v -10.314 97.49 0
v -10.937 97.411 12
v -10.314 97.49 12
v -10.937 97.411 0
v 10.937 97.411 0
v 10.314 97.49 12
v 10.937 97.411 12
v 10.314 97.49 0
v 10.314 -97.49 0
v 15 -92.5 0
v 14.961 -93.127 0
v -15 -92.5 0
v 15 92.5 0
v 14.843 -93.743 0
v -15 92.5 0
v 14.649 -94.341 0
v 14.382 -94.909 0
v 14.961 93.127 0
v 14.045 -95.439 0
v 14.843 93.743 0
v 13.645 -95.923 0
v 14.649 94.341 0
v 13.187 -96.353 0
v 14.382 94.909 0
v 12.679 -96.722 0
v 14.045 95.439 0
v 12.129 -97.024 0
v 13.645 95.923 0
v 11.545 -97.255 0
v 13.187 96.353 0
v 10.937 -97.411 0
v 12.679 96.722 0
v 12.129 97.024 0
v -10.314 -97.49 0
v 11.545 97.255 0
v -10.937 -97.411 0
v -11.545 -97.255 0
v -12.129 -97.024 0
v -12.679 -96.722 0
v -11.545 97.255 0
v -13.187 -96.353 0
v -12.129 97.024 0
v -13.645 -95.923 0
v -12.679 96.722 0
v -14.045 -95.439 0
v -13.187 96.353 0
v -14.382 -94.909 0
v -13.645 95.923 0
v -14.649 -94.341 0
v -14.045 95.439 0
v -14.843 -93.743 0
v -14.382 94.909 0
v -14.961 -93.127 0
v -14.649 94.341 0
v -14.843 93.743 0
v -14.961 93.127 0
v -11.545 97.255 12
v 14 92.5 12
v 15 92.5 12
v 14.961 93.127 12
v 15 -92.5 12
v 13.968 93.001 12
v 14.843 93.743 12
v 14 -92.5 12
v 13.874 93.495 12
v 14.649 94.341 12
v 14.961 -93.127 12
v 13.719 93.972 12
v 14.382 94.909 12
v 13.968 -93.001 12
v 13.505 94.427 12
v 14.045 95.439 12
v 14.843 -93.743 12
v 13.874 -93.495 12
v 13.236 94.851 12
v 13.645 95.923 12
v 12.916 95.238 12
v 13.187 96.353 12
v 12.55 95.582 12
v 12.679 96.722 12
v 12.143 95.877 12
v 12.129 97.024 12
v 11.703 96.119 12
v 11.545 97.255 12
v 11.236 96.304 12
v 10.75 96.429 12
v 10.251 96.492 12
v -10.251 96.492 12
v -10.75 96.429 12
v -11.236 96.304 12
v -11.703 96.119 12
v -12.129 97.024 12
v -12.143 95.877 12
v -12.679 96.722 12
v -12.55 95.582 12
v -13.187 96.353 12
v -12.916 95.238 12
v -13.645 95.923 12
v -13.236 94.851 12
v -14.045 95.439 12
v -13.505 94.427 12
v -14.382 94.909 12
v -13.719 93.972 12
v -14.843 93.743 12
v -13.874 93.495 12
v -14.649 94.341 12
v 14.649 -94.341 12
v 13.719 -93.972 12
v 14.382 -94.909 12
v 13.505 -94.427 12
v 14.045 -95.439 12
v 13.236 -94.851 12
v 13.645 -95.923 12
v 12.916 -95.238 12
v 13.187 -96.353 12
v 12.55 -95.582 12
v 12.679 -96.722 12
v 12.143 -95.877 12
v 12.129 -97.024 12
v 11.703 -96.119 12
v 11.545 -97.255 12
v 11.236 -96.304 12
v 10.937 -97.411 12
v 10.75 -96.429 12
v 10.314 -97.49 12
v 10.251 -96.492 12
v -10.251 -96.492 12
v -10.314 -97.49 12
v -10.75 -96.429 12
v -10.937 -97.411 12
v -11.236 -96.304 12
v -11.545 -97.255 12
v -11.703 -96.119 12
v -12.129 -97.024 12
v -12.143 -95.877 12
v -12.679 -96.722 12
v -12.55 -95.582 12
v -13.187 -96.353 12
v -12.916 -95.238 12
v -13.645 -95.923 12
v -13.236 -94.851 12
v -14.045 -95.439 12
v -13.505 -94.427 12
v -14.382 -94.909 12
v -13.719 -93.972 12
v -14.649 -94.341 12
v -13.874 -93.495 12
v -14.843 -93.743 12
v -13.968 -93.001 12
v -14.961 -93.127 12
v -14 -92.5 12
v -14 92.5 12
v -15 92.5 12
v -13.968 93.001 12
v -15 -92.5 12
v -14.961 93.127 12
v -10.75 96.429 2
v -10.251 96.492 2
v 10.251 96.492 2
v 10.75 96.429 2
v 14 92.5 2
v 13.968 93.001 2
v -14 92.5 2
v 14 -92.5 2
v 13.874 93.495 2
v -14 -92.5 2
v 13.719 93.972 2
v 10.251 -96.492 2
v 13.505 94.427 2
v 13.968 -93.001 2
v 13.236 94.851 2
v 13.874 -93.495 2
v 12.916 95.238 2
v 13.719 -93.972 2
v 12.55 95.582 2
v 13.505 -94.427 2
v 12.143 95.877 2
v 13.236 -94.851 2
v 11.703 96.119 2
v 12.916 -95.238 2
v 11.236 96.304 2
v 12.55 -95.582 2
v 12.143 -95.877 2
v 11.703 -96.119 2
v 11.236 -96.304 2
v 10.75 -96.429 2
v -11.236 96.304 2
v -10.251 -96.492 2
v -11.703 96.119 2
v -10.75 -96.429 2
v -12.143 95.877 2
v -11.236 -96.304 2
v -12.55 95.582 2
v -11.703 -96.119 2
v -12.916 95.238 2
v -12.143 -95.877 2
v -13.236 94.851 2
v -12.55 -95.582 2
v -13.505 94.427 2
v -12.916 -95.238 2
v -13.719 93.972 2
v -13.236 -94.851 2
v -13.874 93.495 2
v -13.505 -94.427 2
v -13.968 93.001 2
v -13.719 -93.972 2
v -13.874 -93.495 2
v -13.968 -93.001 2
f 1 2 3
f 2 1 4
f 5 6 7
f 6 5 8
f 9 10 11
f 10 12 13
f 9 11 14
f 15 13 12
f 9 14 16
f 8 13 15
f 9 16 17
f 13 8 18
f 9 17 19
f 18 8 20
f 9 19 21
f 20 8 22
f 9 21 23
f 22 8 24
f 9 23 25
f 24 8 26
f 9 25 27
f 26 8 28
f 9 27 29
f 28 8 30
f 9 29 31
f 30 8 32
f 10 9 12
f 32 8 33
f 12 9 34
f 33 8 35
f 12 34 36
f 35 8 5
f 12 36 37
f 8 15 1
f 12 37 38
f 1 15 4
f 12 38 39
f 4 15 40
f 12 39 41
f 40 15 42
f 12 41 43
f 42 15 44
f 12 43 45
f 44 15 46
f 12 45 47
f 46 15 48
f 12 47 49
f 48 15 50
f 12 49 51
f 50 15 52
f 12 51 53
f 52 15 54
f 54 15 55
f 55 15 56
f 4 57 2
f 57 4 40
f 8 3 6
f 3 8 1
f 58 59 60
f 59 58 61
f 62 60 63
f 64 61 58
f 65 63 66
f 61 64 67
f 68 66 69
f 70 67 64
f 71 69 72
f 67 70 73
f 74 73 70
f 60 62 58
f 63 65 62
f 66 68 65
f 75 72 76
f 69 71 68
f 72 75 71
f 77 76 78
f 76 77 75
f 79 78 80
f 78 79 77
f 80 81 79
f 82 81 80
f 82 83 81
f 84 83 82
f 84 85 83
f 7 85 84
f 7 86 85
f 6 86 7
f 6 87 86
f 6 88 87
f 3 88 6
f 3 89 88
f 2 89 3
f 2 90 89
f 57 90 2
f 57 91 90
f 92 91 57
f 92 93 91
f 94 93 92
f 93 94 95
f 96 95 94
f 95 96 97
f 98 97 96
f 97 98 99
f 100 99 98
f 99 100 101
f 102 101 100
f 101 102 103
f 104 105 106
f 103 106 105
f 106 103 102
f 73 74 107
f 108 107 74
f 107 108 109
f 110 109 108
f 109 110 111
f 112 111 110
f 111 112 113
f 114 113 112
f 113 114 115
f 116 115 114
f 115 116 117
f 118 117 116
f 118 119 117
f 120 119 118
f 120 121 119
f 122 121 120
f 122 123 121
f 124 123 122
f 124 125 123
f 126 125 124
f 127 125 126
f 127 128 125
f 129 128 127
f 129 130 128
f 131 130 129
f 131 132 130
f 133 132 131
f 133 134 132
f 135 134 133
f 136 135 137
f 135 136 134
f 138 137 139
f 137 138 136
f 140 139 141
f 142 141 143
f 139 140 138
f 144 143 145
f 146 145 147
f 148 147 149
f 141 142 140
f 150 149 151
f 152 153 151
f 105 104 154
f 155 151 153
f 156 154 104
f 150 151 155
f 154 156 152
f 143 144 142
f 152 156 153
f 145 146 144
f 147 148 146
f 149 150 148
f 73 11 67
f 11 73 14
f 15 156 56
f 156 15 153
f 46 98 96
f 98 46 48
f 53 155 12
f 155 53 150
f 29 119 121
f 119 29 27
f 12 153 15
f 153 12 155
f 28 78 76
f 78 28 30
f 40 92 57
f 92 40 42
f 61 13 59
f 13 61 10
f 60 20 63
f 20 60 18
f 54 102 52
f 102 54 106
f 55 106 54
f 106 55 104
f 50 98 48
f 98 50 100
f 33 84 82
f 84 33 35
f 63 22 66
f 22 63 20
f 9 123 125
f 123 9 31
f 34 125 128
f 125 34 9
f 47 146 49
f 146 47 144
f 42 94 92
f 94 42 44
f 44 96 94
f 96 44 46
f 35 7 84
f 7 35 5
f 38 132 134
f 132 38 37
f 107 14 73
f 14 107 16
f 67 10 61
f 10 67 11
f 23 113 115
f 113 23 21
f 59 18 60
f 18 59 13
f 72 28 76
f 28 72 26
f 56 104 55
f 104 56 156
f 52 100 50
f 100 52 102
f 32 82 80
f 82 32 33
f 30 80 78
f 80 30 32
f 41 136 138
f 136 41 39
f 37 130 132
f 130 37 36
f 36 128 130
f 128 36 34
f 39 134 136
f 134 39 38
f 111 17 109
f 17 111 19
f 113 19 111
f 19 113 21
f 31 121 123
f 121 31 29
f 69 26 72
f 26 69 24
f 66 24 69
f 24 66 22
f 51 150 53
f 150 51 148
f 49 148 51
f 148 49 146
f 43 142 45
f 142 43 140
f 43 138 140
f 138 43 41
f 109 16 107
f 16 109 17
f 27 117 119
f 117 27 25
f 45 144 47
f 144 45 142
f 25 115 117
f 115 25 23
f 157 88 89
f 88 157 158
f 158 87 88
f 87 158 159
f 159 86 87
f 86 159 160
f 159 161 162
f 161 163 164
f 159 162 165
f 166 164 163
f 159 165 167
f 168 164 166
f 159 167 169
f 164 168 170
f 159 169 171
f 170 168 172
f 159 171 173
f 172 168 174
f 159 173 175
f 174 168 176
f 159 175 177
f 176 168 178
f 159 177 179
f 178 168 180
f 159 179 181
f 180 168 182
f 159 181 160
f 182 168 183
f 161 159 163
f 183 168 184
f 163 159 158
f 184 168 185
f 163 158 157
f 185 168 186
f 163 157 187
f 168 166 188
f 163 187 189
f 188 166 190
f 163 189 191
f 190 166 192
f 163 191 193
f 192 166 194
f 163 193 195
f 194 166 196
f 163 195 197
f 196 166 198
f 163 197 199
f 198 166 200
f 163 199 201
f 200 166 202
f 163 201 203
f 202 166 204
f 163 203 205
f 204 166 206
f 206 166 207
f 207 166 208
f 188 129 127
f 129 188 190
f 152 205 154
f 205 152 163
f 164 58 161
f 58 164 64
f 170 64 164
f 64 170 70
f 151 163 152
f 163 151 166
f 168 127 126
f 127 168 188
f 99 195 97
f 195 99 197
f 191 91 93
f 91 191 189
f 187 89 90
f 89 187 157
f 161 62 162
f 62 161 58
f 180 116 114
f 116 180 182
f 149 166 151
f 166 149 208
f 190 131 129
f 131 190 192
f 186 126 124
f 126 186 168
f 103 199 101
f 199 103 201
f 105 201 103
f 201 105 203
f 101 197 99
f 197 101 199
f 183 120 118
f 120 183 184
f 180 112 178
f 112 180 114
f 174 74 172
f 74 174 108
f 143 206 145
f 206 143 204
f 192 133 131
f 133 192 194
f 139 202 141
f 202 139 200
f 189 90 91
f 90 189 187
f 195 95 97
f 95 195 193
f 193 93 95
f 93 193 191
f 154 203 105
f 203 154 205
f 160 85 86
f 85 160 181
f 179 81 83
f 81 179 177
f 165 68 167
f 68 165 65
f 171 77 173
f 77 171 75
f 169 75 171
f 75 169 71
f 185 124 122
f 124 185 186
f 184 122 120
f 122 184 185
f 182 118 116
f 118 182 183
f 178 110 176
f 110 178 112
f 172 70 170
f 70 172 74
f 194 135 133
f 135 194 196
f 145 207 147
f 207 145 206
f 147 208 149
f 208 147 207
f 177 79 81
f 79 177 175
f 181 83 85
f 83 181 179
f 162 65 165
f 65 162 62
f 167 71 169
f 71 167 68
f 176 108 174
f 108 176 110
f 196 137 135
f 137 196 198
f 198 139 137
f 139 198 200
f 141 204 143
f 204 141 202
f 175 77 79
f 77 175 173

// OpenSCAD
$fn = 50;


difference() {
	union() {
		hull() {
			translate(v = [-10.0000000000, 92.5000000000, 0]) {
				cylinder(h = 12, r = 5);
			}
			translate(v = [10.0000000000, 92.5000000000, 0]) {
				cylinder(h = 12, r = 5);
			}
			translate(v = [-10.0000000000, -92.5000000000, 0]) {
				cylinder(h = 12, r = 5);
			}
			translate(v = [10.0000000000, -92.5000000000, 0]) {
				cylinder(h = 12, r = 5);
			}
		}
	}
	union() {
		translate(v = [0, 0, 2]) {
			hull() {
				translate(v = [-10.0000000000, 92.5000000000, 0]) {
					cylinder(h = 10, r = 4);
				}
				translate(v = [10.0000000000, 92.5000000000, 0]) {
					cylinder(h = 10, r = 4);
				}
				translate(v = [-10.0000000000, -92.5000000000, 0]) {
					cylinder(h = 10, r = 4);
				}
				translate(v = [10.0000000000, -92.5000000000, 0]) {
					cylinder(h = 10, r = 4);
				}
			}
		}
	}
}
